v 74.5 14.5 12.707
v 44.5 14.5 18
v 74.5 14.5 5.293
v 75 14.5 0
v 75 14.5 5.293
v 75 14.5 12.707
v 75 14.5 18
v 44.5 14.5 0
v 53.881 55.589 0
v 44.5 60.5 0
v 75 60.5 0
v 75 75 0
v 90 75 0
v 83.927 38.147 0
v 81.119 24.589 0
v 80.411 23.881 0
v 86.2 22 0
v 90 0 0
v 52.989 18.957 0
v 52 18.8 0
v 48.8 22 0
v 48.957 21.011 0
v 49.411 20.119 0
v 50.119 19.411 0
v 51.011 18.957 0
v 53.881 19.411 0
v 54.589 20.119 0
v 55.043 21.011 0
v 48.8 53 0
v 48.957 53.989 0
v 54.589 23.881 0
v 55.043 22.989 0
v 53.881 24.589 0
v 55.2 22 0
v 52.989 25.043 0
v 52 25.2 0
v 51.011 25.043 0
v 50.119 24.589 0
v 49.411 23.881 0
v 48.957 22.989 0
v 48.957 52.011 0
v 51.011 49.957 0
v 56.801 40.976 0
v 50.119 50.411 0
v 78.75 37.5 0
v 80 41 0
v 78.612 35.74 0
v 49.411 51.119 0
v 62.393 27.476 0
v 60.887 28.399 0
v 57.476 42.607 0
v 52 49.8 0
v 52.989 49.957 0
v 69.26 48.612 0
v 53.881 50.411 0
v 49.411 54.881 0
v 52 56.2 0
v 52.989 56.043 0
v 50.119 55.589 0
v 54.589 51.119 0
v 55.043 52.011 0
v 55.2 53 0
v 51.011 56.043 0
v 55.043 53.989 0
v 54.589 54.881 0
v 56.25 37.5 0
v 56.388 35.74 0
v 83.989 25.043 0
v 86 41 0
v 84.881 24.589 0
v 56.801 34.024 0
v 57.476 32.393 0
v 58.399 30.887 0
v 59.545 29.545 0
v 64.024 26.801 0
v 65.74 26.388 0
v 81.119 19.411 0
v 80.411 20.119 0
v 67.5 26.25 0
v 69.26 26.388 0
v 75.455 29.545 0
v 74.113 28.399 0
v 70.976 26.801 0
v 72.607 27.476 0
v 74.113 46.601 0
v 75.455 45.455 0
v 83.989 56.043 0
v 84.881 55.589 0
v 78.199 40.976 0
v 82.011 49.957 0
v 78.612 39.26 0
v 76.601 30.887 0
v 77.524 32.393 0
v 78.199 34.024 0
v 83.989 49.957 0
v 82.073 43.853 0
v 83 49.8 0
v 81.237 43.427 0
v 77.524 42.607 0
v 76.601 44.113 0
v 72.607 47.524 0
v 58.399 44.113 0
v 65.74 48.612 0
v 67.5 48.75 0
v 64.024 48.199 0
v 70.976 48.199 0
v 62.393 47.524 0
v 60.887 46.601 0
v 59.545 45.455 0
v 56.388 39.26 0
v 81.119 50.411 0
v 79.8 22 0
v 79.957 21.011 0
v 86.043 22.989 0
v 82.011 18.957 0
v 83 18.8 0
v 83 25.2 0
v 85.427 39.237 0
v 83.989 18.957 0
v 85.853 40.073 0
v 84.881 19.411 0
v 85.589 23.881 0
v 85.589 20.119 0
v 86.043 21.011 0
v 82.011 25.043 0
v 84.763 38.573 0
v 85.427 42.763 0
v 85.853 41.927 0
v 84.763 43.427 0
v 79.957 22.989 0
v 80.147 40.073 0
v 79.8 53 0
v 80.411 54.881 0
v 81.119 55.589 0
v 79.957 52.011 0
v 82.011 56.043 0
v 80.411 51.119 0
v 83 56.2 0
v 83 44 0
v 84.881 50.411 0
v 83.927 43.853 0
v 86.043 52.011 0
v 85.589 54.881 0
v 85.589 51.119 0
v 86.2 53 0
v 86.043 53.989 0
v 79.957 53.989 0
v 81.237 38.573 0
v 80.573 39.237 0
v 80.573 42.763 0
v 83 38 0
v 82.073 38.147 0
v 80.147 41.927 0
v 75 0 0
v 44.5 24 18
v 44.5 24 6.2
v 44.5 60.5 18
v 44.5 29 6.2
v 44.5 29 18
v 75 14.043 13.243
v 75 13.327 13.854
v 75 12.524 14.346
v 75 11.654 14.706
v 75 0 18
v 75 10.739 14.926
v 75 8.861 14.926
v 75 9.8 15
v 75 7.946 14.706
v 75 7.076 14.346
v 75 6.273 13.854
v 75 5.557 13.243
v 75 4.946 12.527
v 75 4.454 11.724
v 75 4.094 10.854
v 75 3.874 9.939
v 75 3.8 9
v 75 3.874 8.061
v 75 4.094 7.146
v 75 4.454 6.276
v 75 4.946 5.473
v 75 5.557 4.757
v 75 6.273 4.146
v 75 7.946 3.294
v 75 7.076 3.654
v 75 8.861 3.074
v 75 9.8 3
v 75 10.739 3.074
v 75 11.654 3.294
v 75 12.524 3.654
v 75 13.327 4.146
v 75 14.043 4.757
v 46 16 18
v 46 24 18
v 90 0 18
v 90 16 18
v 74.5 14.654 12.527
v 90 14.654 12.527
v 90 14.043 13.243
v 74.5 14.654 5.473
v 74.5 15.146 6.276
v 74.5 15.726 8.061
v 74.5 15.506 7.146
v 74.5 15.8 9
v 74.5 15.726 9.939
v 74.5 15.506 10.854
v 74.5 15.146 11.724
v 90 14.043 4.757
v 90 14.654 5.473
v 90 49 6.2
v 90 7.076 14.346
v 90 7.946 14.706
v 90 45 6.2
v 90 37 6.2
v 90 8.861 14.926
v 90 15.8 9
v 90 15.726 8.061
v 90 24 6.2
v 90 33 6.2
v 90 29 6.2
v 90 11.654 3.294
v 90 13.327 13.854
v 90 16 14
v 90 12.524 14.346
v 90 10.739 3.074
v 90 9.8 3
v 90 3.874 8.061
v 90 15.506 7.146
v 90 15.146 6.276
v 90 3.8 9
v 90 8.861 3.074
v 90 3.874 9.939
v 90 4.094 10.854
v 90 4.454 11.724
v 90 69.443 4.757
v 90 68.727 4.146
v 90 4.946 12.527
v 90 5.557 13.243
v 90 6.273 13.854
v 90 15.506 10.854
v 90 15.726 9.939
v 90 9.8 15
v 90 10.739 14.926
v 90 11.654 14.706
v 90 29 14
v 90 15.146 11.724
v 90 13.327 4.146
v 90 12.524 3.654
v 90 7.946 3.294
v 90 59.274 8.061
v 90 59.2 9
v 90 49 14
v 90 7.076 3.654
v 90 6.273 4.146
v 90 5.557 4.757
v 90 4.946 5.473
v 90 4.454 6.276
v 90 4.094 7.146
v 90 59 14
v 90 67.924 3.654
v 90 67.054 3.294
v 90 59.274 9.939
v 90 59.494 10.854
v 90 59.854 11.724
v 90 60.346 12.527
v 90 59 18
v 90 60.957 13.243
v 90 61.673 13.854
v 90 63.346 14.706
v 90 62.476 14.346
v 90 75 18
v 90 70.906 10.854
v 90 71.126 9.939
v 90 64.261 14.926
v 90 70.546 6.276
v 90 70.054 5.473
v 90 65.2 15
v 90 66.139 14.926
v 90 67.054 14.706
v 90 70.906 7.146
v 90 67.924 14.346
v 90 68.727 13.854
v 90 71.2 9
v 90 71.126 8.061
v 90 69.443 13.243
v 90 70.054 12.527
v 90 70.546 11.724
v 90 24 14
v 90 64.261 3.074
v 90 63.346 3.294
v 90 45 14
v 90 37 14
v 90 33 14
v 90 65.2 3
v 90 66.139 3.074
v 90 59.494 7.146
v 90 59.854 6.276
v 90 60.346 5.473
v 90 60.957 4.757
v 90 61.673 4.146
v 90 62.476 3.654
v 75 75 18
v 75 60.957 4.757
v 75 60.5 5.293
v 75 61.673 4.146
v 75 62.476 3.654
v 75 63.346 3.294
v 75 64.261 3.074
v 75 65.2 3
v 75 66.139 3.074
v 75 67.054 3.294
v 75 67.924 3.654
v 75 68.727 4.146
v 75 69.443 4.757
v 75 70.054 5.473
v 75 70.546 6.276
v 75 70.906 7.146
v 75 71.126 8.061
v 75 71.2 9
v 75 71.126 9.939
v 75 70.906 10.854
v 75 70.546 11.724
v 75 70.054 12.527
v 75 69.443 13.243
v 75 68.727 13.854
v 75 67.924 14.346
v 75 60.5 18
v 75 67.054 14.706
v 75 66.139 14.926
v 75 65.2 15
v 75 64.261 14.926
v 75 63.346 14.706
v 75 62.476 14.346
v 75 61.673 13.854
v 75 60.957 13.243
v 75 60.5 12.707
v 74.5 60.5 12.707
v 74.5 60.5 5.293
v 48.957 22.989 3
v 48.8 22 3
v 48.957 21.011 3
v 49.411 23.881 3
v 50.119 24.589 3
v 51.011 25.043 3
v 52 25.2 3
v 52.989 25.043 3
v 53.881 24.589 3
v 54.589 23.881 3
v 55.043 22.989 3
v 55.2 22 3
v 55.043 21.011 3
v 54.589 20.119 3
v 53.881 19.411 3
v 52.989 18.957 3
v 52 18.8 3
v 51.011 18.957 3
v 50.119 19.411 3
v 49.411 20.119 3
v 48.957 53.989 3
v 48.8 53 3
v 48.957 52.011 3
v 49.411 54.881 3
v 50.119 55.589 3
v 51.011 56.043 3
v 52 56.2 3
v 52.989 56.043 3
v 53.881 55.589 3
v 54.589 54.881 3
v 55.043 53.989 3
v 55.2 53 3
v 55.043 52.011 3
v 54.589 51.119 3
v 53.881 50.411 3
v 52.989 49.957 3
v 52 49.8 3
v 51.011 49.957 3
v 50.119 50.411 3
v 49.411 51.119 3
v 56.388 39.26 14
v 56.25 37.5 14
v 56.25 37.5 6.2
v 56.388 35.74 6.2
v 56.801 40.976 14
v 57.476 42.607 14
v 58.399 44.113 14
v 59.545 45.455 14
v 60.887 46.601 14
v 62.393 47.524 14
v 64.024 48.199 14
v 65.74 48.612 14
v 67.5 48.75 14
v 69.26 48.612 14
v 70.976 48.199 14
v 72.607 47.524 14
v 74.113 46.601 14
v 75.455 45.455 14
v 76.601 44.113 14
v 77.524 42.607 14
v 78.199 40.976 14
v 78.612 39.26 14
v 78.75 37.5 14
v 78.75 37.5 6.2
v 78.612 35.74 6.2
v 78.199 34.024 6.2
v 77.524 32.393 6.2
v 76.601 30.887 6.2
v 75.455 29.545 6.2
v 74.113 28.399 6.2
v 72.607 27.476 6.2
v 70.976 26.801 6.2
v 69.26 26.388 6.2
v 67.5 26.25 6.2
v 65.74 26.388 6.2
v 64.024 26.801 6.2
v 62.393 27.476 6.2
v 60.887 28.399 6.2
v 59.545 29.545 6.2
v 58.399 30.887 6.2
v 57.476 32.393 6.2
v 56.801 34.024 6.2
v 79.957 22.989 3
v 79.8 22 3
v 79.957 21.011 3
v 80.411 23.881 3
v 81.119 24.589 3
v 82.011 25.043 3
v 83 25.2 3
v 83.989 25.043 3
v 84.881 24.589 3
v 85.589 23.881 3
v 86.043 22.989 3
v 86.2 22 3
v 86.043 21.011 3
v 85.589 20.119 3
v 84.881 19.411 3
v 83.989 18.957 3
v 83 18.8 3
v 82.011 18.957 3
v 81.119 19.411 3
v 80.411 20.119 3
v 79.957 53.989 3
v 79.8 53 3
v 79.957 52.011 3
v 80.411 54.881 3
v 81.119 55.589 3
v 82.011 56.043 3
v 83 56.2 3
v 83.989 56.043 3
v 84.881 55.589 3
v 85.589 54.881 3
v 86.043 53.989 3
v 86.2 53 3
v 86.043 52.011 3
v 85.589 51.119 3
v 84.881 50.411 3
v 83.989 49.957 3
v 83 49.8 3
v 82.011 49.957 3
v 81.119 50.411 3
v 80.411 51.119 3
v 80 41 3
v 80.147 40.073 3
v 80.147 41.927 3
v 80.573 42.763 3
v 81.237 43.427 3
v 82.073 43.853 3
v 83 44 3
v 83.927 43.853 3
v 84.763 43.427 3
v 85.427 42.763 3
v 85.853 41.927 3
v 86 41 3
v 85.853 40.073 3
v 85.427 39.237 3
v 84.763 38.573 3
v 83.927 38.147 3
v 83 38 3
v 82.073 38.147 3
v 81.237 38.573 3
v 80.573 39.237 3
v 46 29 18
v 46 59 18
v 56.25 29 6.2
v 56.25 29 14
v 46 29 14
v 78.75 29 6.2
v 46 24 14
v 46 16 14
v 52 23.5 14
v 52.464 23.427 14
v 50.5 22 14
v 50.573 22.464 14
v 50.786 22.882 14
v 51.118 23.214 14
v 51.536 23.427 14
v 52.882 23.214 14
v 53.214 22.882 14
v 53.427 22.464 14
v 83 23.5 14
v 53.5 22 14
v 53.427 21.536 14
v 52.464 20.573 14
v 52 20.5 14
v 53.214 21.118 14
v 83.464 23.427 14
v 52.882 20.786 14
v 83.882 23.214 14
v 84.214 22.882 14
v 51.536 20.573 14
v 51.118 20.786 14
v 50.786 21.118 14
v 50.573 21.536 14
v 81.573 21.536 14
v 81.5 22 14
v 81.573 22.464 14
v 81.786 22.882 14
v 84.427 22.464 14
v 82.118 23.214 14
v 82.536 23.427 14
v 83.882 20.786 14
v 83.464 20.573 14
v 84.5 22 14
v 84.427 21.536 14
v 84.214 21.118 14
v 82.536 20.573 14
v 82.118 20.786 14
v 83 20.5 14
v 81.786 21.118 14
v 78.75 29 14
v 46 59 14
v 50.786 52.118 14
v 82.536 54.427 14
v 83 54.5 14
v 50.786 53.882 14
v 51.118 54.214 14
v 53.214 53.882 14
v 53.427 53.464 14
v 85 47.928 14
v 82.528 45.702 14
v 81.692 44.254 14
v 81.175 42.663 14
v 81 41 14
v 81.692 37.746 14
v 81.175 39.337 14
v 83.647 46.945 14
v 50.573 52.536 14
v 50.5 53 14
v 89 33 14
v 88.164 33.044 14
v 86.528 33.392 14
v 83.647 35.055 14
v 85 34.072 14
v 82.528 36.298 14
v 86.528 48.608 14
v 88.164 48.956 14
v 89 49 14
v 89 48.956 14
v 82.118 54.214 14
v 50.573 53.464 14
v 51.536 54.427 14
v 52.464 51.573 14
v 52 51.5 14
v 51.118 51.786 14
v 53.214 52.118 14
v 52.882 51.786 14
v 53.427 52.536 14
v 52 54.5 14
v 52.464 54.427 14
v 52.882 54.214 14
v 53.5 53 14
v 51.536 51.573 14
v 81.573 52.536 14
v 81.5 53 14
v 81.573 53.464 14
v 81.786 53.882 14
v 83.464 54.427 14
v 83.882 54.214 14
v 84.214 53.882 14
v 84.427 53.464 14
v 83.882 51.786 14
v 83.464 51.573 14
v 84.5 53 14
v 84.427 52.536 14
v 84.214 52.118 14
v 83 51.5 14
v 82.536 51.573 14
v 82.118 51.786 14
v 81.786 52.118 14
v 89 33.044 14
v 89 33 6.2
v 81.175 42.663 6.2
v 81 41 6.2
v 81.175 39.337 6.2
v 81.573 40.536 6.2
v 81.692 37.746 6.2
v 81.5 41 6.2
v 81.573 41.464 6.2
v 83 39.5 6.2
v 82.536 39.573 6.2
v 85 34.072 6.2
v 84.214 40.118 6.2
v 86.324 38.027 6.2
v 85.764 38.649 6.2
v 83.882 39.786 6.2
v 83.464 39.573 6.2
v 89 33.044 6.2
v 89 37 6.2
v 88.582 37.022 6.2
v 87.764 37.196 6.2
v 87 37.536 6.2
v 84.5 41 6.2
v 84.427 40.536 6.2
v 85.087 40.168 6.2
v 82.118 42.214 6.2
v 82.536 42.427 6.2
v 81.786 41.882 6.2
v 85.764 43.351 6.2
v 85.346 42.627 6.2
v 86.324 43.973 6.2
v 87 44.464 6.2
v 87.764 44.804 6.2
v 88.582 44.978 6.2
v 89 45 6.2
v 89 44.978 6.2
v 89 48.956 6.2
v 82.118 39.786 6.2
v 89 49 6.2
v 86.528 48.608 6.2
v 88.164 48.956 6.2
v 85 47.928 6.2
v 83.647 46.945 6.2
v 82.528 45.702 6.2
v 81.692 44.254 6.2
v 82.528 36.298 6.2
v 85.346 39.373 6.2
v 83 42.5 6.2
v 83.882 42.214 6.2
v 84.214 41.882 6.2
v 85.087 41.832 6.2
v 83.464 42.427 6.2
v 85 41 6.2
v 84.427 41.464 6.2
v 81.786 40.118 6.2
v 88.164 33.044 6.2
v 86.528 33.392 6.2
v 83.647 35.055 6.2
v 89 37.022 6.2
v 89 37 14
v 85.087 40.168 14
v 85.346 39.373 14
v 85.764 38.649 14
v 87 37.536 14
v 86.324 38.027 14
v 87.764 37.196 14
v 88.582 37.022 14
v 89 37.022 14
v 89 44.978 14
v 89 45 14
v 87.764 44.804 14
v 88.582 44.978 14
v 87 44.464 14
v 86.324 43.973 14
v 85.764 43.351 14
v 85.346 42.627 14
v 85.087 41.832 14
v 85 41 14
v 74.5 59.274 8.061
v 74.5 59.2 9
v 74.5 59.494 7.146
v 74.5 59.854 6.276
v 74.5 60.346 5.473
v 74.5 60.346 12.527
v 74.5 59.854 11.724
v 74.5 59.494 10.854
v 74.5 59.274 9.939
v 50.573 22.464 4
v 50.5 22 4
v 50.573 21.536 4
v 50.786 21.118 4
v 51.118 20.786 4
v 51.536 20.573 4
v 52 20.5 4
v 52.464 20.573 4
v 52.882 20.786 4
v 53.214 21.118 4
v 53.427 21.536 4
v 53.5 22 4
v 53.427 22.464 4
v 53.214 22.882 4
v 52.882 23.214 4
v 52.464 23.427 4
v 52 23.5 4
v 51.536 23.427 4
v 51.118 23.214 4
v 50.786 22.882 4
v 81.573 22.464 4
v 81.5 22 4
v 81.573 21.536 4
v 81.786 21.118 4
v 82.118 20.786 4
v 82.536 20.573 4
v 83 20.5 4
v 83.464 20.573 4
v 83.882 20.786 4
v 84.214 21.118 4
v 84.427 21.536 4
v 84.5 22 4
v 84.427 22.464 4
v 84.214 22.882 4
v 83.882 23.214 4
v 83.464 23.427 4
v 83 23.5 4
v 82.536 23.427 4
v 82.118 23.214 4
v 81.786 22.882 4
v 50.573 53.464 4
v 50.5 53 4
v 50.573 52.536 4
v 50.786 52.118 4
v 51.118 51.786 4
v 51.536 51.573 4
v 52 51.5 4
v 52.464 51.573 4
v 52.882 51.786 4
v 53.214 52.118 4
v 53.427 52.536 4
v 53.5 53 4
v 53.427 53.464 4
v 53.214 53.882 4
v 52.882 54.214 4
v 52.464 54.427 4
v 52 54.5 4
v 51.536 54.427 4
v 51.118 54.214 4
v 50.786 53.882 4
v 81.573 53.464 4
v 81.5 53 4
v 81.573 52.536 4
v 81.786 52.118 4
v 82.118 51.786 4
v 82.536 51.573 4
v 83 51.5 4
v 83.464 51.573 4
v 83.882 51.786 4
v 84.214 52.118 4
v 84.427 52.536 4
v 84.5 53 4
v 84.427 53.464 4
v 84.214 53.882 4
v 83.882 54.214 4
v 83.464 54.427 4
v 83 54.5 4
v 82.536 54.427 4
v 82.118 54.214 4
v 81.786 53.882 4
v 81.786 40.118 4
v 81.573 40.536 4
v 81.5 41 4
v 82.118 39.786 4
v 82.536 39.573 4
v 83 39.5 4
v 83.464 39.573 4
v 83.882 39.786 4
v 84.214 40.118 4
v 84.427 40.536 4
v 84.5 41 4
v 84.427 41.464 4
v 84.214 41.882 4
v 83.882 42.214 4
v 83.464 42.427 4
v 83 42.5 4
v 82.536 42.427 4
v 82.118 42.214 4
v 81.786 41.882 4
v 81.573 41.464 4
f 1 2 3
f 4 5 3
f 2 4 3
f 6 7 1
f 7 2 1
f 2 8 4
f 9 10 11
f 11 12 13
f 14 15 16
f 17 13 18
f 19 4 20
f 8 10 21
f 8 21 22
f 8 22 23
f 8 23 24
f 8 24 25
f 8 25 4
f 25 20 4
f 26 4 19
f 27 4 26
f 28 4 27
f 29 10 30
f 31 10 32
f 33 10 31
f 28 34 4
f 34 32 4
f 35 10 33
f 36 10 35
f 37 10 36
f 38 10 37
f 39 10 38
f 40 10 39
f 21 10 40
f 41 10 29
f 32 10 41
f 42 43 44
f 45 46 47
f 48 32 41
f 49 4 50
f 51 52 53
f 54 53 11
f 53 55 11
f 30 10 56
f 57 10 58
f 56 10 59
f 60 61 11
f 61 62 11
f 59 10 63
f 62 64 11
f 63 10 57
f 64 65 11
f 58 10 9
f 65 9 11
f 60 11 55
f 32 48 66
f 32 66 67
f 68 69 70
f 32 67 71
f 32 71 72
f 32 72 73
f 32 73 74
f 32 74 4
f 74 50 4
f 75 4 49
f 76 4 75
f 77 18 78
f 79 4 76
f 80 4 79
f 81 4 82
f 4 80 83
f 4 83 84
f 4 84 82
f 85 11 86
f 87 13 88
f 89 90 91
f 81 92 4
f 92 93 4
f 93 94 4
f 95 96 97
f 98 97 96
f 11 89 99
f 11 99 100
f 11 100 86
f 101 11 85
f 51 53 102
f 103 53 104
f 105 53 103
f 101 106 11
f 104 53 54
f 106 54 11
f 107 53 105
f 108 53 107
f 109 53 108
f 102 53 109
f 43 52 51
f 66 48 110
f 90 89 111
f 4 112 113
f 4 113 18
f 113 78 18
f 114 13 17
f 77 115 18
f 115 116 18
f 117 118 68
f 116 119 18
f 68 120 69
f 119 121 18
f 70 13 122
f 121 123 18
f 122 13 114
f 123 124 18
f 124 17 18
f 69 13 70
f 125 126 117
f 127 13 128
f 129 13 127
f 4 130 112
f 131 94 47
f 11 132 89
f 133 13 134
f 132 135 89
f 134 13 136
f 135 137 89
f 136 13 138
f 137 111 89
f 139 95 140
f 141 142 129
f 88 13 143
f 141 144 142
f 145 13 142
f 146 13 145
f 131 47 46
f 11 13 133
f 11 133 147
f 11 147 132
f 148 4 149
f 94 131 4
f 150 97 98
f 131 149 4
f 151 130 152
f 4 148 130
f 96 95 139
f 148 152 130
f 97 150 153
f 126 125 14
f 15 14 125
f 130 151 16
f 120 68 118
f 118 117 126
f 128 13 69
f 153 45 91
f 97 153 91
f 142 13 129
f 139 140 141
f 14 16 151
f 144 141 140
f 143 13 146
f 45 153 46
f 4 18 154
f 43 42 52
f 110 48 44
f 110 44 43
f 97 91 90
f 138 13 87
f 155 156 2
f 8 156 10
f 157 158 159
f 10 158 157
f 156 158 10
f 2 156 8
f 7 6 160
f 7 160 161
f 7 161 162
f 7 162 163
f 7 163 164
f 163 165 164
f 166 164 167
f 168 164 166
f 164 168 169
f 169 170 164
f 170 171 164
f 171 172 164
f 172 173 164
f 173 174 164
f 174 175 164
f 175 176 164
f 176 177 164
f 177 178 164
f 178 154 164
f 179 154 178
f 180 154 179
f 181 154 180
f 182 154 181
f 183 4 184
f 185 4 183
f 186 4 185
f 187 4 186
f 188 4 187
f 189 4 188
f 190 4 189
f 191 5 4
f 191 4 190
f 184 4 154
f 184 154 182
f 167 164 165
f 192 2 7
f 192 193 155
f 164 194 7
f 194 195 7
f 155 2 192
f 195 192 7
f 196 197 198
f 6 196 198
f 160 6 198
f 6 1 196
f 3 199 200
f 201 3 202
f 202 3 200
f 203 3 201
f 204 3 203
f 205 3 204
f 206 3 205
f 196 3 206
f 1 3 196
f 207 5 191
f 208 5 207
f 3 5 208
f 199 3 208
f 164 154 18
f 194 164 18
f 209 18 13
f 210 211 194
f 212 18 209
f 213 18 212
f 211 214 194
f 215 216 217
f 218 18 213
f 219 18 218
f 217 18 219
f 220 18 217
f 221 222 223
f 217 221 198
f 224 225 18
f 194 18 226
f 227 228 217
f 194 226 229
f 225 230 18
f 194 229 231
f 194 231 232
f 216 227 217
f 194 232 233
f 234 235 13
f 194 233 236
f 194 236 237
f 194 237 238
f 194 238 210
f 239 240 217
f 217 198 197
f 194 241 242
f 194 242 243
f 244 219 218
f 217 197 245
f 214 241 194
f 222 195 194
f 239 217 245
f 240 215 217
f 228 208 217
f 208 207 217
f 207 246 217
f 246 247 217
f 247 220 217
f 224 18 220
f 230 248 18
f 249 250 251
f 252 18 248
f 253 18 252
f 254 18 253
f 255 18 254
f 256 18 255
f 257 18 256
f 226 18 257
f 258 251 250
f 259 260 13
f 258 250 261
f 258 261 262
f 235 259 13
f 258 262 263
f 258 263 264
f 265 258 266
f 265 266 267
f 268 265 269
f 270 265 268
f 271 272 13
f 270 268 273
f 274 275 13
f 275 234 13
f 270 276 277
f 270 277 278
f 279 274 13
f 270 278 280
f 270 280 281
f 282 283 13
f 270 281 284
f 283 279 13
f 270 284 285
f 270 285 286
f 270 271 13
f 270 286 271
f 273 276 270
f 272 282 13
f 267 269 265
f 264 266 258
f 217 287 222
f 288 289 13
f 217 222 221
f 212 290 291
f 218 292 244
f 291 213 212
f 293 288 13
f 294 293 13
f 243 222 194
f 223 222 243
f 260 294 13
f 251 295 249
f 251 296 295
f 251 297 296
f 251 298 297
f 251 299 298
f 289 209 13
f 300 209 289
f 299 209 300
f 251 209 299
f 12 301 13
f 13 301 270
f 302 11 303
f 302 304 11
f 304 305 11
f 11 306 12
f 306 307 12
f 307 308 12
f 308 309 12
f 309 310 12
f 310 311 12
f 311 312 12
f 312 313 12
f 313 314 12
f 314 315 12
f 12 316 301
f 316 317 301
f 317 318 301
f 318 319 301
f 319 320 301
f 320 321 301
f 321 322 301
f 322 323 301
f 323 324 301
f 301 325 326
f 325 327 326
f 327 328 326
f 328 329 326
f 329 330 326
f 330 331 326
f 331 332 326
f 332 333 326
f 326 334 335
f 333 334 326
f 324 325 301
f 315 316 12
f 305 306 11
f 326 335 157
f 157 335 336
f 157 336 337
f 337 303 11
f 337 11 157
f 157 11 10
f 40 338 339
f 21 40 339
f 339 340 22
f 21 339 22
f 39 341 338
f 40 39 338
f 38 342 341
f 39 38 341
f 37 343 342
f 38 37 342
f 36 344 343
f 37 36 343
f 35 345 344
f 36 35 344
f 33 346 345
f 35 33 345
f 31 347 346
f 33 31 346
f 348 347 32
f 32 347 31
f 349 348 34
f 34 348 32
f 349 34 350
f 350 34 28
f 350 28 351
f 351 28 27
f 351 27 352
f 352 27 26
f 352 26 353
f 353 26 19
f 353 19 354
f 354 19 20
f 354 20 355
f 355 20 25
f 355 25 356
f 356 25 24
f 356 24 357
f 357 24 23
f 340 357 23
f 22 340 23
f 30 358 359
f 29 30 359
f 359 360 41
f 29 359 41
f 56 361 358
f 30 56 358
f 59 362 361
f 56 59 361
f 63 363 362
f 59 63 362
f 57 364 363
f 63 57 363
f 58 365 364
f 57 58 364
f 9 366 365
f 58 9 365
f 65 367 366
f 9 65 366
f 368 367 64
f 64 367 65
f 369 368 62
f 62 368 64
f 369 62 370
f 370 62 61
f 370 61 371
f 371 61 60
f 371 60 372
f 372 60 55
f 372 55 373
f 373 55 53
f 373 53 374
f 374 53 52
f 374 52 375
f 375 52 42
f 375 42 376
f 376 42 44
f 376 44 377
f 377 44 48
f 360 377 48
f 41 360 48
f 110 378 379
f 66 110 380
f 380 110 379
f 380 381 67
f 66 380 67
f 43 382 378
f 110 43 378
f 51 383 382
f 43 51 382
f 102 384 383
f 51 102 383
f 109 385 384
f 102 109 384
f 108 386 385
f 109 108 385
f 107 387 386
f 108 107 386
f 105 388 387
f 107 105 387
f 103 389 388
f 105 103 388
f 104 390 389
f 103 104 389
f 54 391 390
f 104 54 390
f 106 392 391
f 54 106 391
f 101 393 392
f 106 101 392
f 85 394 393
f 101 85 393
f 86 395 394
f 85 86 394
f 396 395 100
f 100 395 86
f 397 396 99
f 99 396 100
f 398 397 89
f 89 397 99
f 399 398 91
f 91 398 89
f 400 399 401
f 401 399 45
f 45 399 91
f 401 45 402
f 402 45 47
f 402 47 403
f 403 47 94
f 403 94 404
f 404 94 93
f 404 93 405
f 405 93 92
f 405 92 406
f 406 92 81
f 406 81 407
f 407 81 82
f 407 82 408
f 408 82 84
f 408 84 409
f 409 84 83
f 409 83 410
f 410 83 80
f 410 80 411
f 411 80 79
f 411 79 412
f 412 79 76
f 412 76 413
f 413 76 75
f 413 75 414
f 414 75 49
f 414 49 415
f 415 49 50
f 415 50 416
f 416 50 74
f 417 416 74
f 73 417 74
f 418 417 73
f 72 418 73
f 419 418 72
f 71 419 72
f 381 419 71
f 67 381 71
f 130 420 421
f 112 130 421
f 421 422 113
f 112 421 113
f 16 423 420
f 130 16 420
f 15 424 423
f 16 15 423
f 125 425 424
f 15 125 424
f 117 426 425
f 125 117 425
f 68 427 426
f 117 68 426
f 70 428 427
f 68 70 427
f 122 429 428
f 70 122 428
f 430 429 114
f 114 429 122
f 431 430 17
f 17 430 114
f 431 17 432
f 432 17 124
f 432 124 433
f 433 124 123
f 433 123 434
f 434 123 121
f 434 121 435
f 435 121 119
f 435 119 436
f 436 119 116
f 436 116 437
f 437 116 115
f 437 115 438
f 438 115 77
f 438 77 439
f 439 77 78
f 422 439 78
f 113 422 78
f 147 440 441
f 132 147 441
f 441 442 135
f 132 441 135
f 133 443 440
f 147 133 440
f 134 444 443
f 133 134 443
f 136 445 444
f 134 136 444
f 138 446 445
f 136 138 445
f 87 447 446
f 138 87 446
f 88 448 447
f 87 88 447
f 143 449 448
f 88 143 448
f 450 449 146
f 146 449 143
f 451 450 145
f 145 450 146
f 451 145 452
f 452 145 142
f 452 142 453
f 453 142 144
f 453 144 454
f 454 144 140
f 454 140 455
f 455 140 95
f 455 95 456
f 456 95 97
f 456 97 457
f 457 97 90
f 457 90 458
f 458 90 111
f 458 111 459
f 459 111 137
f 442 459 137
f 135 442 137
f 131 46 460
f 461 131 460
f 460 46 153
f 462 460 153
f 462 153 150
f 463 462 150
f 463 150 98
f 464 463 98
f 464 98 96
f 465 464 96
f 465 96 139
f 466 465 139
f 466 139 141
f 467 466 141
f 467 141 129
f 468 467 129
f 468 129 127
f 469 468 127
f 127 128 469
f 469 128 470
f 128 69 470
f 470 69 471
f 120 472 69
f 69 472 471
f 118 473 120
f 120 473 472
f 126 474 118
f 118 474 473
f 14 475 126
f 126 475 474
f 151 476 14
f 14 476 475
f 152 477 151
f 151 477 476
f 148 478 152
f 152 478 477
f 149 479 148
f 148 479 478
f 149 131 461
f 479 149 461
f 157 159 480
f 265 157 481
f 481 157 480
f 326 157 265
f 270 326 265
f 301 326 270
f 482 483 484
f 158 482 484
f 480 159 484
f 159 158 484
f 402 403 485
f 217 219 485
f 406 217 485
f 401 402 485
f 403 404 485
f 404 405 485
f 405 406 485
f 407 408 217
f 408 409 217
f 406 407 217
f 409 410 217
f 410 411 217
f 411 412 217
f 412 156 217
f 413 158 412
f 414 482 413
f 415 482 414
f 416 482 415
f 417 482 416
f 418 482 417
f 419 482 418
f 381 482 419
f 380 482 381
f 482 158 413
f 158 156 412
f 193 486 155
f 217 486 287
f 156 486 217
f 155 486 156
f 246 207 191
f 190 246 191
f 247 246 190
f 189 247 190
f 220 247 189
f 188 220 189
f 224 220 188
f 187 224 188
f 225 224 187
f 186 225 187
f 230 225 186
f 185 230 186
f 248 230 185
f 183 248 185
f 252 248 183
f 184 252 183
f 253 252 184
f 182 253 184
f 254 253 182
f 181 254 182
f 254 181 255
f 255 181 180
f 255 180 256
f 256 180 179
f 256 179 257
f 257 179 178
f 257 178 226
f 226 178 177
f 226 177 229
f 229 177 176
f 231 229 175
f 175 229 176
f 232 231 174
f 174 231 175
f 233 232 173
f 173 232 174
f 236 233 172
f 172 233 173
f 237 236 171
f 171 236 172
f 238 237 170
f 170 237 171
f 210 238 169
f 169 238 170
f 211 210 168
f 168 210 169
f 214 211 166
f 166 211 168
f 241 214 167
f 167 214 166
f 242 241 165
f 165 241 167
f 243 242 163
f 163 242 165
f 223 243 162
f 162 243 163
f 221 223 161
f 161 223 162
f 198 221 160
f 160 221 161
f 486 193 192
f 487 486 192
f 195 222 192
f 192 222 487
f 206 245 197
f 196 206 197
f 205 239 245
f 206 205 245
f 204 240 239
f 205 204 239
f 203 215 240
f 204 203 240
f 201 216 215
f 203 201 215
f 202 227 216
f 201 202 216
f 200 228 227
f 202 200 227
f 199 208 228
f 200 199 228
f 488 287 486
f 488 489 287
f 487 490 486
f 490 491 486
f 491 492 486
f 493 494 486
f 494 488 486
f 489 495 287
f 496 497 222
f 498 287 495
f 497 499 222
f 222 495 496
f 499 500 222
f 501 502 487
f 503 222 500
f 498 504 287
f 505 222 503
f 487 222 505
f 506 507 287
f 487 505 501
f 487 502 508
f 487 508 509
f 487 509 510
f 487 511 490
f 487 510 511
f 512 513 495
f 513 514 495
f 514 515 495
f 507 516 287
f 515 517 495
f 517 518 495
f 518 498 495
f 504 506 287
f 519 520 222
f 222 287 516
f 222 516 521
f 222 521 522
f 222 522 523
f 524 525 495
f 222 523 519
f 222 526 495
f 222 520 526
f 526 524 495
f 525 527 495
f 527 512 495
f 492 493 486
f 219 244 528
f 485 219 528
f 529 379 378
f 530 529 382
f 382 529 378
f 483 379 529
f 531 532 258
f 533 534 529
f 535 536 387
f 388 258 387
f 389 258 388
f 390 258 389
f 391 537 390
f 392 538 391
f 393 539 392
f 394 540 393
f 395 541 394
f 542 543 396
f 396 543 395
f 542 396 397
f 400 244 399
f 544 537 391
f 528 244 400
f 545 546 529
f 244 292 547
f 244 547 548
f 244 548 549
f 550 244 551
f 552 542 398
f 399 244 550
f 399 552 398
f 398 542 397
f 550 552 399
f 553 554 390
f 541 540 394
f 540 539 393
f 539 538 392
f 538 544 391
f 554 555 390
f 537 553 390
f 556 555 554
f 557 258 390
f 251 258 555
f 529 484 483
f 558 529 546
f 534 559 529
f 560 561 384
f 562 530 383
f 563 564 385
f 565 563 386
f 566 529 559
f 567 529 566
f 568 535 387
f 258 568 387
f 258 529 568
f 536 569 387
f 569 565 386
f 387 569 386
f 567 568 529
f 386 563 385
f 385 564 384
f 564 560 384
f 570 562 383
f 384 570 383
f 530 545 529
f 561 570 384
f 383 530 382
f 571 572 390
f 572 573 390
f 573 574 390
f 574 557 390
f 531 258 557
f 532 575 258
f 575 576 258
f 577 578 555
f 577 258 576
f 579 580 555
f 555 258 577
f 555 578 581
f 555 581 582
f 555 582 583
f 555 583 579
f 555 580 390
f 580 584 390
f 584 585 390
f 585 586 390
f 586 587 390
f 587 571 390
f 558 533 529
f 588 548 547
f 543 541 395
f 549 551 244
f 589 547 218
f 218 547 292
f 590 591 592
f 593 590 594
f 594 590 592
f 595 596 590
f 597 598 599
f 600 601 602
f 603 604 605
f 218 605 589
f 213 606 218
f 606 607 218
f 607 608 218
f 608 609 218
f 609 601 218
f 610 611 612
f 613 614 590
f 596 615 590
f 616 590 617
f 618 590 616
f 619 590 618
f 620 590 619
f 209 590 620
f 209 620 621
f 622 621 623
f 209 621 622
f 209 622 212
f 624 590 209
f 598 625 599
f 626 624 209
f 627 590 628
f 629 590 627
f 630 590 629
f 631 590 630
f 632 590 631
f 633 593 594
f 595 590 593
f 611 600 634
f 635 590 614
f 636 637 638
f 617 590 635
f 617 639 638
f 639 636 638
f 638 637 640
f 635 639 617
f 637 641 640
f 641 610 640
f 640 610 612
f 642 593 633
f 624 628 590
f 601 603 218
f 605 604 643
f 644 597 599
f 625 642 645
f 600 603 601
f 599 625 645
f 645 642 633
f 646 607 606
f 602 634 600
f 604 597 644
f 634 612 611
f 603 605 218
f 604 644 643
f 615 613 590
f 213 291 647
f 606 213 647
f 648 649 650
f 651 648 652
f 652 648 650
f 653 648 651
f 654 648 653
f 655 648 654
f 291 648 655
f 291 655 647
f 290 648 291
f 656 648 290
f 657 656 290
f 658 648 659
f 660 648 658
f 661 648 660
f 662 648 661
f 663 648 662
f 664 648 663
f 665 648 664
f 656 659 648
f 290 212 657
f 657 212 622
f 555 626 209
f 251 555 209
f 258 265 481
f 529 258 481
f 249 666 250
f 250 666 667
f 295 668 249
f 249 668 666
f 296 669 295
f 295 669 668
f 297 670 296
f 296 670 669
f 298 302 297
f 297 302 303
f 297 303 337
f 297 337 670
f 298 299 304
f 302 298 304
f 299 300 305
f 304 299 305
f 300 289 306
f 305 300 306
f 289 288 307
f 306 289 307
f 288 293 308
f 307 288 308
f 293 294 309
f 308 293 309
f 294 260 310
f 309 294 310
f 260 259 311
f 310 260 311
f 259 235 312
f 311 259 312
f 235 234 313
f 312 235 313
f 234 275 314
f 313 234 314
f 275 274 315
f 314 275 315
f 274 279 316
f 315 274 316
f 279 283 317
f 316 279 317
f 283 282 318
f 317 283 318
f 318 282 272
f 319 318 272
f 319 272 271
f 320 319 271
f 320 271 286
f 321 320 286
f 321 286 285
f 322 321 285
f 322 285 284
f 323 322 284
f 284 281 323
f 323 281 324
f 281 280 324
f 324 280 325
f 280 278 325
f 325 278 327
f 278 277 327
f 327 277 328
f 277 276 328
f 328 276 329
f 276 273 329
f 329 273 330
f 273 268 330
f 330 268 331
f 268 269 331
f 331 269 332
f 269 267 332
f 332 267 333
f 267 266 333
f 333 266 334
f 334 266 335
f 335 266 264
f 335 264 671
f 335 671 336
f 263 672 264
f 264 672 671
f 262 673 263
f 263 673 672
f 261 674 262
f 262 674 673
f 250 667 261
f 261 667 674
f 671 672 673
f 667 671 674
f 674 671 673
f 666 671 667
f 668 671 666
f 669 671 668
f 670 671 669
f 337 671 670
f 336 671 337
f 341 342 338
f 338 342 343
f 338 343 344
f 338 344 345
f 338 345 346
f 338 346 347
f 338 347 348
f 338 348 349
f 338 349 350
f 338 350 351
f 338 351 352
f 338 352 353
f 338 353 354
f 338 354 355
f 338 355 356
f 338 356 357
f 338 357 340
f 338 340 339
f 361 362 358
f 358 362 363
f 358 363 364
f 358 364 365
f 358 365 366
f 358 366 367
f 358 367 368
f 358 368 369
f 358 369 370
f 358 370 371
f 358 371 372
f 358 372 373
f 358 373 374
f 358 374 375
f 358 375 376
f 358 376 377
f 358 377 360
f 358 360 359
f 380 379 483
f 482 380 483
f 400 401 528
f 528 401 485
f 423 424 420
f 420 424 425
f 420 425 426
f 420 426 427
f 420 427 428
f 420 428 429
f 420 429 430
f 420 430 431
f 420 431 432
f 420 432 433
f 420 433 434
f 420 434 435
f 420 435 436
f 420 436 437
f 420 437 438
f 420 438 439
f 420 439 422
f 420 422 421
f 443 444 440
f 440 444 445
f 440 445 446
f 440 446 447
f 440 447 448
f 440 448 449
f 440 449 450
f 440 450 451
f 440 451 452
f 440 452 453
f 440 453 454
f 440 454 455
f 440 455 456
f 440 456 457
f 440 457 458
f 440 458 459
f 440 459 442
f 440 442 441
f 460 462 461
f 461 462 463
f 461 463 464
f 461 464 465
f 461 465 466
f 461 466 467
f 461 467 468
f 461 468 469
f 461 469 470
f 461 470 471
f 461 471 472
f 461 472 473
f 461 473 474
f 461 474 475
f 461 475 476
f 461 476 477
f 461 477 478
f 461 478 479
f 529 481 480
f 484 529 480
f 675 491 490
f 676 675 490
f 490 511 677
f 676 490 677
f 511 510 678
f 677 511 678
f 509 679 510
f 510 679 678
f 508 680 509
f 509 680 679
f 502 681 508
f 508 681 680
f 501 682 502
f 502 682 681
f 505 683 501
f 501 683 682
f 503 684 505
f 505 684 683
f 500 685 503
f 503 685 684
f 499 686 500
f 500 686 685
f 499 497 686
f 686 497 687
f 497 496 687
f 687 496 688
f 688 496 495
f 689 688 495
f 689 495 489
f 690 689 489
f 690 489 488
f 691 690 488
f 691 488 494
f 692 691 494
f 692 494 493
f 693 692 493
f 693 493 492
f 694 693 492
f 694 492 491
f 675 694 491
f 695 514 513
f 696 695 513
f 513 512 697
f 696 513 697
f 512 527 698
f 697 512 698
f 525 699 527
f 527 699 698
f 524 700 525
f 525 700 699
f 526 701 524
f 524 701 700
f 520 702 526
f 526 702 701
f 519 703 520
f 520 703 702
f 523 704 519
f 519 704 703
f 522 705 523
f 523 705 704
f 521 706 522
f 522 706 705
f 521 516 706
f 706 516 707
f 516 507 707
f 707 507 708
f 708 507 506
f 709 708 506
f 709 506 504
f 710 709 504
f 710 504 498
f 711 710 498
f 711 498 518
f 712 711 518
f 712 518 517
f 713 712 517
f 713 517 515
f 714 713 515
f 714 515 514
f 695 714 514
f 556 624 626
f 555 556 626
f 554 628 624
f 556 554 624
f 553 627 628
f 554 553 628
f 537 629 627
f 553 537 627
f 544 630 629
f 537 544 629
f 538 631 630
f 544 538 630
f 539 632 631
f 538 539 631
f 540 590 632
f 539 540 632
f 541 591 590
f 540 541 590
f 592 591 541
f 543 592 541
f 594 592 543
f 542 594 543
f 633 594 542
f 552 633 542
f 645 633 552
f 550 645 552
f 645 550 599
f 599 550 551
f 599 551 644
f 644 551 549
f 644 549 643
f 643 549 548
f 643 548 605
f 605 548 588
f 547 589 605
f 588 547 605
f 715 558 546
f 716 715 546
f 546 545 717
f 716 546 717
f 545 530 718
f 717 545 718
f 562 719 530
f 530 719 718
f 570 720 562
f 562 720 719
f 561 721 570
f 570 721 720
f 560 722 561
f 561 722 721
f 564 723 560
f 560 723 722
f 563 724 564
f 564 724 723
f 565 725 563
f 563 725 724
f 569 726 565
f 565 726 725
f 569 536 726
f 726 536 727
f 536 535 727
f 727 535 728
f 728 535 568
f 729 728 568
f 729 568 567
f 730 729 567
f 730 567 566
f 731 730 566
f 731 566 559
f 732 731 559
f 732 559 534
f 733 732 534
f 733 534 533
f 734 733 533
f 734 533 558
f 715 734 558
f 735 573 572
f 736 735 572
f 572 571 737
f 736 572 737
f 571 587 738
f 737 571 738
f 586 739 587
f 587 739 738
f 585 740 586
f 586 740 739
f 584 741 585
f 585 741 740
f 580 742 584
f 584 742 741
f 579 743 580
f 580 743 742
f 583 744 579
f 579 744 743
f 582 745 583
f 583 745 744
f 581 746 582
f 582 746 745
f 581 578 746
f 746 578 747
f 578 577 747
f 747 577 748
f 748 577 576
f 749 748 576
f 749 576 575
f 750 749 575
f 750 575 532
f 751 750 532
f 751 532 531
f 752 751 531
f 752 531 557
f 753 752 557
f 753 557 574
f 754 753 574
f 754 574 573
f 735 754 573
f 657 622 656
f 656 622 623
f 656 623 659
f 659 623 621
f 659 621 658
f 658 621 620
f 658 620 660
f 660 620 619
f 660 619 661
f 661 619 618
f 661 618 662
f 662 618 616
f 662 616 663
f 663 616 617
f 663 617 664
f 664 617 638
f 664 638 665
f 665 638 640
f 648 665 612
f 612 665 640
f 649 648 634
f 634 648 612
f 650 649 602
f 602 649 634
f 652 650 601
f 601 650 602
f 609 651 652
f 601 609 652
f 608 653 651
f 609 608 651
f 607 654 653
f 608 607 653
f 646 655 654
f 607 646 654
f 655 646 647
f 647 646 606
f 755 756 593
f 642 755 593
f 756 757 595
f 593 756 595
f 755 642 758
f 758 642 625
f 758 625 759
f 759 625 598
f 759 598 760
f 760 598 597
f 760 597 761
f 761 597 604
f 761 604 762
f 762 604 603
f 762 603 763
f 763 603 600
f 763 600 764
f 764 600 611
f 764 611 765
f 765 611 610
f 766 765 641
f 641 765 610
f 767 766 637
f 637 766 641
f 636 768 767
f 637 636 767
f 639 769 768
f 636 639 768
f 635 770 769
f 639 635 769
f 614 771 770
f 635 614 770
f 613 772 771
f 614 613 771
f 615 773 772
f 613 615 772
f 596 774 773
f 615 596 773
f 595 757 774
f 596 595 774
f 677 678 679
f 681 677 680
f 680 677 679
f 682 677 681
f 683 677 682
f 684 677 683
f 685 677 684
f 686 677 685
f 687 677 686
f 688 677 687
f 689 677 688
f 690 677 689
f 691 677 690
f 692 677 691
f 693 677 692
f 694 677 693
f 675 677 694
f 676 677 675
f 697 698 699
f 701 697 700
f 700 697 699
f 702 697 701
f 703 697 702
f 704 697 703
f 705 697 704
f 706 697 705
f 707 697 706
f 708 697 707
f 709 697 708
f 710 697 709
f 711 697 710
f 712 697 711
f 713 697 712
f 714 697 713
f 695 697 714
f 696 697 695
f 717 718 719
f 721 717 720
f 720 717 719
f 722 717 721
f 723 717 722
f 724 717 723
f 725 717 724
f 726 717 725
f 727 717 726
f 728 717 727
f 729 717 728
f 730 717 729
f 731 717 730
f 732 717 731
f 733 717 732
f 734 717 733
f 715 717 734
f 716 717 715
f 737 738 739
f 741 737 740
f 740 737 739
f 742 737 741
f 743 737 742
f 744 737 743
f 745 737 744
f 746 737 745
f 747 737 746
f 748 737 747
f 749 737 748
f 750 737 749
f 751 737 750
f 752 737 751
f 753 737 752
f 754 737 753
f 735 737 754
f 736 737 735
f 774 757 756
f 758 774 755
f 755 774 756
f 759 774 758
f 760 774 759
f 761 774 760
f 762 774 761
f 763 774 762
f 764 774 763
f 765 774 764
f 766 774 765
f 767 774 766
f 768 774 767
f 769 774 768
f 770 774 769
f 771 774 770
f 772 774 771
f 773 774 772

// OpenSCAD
x=90;y=75;z=18;
x1=60;y1=15.5;
y2=9.8;
x3=25;y3=23;
d1=12;
d2=3;
x4=(x-x1)/2;
dz=31;
x5=15;
y5=22;
x6=x5+28+9;
d3=14;
d4=22.5;

v=10;
d5=16;
d6=8;
dz2=6;

module bolt() {
	translate([0,0,-1])cylinder(4,r=3.2,$fn=20);
	translate([0,0,4])cylinder(z-2,r=d2/2,$fn=20);
}
module belt() {
	difference() {
		translate([1,0,z-11.8])
		union() {
			cylinder(v,r=d5/2,$fn=30);
			translate([-d5/2,-d5/2,0]) cube([d5/2,d5,v]);
		}
		translate([1,0,z-11.8])
		union() {
			cylinder(v,r=d6/2,$fn=30);
			translate([-d6/2,-d6/2,0]) cube([d6/2,d6,v]);
		}
	}
	//translate([-1,0,z-7]) rotate([0,90,0]) cylinder(d6,r=d2/2,$fn=20);
	translate([7,0,0]){
		translate([0,0,-1])cylinder(4,r=3,$fn=20);
		translate([0,0,4])cylinder(z-6,r=d2/2,$fn=20);
	}
}
                           

difference (){
difference() {
	cube([x,y,z]);
	translate([(x-x1)/2,-1,-1]) cube([x1,y1,z+2]);
	translate([(x-x1)/2,y-y1+1,-1]) cube([x1,y1,z+2]);
	translate([x6-dz2,y5-dz2,z-4]) cube([2*dz2+dz+2,2*dz2+dz,5]);

	// направляющие
	translate([-0.5,y2,z/2]) rotate([0,90,0]) cylinder(x4+1,r=d1/2,$fn=40);
	translate([x-x4-0.5,y2,z/2]) rotate([0,90,0]) cylinder(x4+1,r=d1/2,$fn=40);
	translate([-0.5,y-y2,z/2]) rotate([0,90,0]) cylinder(x4+1,r=d1/2,$fn=40);
	translate([x-x4-0.5,y-y2,z/2]) rotate([0,90,0]) cylinder(x4+1,r=d1/2,$fn=40);

	// квадратные отверстия
	//translate([x-x3-12.1,26.3,-1]) cube([x3,y3,z+2]);
	//translate([x-x3-48,26.3,-1]) cube([x3,y3,z+2]);
	
	// болты
	translate([x5-1,y5-1.5,0]) bolt();
	//translate([x5-1,y5+dz-1.5,0]) bolt();
	translate([x5+26,y5-1.5,0]) bolt();
	translate([x5+26,y5+dz-1.5,0]) bolt();

	translate([x6,y5,0]) bolt();
	translate([x6,y5+dz,0]) bolt();
	translate([x6+dz,y5,0]) bolt();
	translate([x6+dz,y5+dz,0]) bolt();

	// пазы
	//translate([x-61.25,44.38,-1]) cylinder(z+2,r=d3/2,$fn=40);
	// круглые отверстия
	translate([x-60.9,40.9,-1]) cylinder(9,r=d4/2,$fn=40);
	translate([x-60.9,40.9,8.5]) cylinder(10,r=13/2,$fn=40);
	translate([x-60.9,40.9,z-2]) cylinder(9,r=d4/2,$fn=40);
	// мотор
	translate([x6+dz/2,y5+dz/2,-1]) cylinder(z+2,r=d4/2,$fn=40);
	translate([x6+dz/2-d4/2,y5+dz/2-d4/2,z-11.8]) cube([d4,d4/2,z+2]);
	// продольный паз для ремня
	translate([-1,24,z-11.8]) cube([x+2,5,12]);

	// для ремней
	translate([3,41,0]) belt();
	translate([x,41,0]) mirror([1,0,0]) belt();
}
translate([-2,-2,-2])cube ([46.5,100,50]) ;
}
	//translate([3,0,0]) belt();
// расчет такого y2, чтобы расстояние между осями было верным
echo((y-(47.3+63.2)/2)/2);
// расчет крепления мотора
echo("x=",x6+dz/2);
echo("y=",y5+dz/2);

// втулка
/*color([1,0.5,0.3])
translate([-0.1,y2,z/2])
rotate([0,90,0])
difference() {
	cylinder(10.3,r=11.5/2);
	translate([0,0,-0.1])cylinder(10.5,r=7.9/2);
}

	translate([26.25,5.2,3.8]) %cube([18,11.7,10.5]);
translate([26.25+11.5/2,5.25+11.5/2,4])
difference() {
	cylinder(10.3,r=11.5/2);
	translate([0,0,-0.1])cylinder(10.5,r=7.9/2);
	

}
}
*/
